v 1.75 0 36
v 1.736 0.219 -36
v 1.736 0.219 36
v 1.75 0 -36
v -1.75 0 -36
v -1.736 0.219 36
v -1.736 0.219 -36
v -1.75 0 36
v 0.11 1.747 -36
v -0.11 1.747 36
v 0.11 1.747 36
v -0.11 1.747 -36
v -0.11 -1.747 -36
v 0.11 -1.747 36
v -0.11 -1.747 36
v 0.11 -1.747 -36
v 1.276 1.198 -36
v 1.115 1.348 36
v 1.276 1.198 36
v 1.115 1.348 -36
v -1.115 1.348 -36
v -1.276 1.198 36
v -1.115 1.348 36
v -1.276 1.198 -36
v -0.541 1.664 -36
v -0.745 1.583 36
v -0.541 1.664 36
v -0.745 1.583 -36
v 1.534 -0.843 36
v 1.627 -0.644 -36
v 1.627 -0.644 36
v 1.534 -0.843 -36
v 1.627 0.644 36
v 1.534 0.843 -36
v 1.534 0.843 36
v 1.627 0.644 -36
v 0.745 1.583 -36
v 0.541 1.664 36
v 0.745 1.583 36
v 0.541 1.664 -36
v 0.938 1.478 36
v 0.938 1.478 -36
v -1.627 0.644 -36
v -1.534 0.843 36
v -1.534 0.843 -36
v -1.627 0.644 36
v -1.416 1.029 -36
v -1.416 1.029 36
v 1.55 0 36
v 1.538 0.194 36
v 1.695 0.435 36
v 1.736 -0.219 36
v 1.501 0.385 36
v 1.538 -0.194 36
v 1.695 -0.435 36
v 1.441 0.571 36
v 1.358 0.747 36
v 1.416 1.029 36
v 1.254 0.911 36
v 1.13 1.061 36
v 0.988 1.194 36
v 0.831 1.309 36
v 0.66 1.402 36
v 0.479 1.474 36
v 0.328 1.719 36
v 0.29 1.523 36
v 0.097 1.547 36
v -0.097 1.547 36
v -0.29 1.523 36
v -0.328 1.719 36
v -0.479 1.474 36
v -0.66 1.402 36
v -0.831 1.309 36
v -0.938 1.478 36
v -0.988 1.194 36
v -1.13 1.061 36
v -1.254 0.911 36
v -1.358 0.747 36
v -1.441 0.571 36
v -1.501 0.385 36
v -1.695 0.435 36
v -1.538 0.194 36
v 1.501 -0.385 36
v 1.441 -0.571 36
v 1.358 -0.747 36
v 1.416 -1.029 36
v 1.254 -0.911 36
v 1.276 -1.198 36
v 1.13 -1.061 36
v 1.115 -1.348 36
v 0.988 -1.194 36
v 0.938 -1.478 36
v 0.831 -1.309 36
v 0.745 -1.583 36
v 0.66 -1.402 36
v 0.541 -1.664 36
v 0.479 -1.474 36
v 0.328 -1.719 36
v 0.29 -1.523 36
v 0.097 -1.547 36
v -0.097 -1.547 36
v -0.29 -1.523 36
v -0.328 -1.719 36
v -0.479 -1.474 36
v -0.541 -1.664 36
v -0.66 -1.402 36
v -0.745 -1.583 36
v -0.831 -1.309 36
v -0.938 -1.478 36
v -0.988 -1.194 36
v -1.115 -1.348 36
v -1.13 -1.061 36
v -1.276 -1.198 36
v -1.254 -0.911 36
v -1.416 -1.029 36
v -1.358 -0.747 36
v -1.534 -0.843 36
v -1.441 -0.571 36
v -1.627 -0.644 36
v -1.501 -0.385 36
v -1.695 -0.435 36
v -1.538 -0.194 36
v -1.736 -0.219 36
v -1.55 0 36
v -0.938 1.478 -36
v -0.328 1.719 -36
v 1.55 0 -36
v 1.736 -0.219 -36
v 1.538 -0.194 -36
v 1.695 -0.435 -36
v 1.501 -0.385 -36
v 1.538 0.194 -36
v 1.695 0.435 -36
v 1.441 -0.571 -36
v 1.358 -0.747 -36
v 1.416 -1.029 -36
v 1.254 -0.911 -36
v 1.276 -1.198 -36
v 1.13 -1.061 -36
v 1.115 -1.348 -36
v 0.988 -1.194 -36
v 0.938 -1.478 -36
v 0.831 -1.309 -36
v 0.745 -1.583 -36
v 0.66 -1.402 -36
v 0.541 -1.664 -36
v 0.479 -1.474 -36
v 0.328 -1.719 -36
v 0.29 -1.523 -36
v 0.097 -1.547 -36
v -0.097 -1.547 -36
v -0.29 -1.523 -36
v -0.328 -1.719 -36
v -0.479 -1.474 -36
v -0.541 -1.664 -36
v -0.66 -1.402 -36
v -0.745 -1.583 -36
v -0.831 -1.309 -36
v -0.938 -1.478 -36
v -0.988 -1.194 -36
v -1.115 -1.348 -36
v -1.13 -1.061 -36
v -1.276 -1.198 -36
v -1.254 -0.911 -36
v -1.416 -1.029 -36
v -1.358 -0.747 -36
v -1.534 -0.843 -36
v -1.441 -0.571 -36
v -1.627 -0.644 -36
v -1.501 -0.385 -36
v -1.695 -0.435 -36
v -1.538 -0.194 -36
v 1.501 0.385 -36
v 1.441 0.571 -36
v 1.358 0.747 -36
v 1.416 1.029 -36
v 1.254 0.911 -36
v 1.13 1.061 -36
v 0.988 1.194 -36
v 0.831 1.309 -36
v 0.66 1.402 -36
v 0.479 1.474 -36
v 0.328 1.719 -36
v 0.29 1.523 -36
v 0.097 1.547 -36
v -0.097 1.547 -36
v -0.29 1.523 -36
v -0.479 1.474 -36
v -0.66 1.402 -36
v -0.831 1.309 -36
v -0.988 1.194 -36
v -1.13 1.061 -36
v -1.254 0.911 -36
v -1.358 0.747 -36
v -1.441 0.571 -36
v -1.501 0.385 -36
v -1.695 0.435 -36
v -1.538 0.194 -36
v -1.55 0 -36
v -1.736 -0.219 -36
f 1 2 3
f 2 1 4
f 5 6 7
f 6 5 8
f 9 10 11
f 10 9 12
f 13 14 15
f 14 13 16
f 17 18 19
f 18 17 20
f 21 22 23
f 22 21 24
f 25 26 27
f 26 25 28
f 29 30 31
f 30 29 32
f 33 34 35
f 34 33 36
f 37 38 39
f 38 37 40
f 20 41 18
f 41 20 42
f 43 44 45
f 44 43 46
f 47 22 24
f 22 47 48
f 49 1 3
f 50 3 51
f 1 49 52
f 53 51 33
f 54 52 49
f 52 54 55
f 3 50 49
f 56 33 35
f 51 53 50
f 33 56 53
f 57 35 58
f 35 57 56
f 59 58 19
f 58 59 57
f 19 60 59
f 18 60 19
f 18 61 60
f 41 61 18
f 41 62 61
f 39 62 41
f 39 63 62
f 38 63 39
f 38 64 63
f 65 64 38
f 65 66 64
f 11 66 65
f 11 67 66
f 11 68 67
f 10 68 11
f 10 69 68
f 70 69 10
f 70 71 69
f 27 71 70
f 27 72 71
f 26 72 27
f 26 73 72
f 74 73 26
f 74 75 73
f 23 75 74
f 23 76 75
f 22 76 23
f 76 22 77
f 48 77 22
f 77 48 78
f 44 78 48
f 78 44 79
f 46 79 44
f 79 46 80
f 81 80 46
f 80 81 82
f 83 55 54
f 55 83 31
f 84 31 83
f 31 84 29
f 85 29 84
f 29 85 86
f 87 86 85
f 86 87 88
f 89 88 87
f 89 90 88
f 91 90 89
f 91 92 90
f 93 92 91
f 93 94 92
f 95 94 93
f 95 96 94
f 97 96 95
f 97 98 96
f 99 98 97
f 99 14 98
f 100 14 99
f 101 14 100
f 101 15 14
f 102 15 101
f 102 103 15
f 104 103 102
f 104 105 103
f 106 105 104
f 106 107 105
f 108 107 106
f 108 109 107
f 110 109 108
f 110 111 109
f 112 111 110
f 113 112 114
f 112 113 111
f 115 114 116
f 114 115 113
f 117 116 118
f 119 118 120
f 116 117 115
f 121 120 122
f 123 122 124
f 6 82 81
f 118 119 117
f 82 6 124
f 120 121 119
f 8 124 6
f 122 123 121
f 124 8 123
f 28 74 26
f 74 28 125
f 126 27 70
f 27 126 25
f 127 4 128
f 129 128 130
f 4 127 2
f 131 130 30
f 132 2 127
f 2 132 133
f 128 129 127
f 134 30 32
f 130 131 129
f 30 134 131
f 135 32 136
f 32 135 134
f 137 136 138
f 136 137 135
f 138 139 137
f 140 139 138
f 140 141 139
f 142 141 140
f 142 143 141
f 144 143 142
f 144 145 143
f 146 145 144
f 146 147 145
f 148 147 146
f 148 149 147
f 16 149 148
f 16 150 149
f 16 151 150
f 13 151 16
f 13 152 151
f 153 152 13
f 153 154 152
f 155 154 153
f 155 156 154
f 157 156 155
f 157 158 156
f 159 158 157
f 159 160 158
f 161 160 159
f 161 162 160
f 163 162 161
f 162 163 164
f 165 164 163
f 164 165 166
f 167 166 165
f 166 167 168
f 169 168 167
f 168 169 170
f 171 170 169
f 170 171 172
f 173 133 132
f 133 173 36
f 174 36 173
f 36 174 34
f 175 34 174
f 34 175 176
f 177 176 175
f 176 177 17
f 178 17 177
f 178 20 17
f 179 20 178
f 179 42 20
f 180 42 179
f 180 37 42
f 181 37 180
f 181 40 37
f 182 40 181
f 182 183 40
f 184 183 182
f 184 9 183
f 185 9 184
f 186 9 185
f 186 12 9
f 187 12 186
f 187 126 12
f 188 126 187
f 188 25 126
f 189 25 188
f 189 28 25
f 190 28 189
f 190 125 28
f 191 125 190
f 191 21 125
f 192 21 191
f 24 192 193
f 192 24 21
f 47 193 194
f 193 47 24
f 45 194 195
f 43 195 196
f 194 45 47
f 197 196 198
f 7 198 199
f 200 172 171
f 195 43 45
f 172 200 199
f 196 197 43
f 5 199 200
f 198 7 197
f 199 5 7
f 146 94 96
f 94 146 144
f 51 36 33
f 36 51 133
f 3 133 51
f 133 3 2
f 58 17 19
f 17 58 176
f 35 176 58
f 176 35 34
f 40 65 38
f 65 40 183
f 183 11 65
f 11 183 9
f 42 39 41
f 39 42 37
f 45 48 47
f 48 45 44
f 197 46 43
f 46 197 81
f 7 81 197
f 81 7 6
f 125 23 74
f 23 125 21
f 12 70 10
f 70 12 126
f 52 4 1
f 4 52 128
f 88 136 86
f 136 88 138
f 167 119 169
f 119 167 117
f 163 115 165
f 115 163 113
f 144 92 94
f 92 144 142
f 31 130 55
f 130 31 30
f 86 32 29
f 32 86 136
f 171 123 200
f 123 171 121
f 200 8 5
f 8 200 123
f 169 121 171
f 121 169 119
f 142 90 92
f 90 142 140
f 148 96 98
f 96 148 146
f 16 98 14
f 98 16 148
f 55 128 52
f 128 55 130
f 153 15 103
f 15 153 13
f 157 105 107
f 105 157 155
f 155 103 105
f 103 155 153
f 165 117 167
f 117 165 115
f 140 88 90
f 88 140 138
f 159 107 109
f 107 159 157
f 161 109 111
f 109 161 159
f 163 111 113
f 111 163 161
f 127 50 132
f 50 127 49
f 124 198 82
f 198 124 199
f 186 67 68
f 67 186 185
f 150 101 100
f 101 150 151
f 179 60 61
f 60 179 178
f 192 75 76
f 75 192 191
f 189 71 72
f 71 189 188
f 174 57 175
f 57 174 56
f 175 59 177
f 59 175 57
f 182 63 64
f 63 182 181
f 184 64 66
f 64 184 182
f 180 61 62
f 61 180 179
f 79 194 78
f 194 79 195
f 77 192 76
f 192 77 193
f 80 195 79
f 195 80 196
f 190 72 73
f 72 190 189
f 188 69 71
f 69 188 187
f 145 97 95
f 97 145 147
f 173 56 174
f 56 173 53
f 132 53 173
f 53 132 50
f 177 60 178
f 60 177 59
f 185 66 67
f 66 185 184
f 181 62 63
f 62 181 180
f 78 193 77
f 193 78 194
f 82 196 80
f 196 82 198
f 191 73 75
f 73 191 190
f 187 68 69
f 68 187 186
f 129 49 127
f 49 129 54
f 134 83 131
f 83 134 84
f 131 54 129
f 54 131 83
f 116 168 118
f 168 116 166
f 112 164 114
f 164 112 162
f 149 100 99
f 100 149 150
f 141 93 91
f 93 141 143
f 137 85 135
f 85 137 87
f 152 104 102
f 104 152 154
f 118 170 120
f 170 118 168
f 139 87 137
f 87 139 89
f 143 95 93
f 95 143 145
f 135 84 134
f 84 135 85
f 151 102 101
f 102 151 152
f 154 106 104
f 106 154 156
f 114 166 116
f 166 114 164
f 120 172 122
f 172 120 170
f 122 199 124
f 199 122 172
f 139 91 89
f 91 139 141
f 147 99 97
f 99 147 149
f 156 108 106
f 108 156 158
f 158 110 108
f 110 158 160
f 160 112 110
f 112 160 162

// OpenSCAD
$fn = 50;


difference() {
	union() {
		translate(v = [0, 0, -36.0000000000]) {
			cylinder(h = 72, r = 1.7500000000);
		}
	}
	union() {
		translate(v = [0, 0, -100.0000000000]) {
			cylinder(h = 200, r = 1.5500000000);
		}
	}
}
